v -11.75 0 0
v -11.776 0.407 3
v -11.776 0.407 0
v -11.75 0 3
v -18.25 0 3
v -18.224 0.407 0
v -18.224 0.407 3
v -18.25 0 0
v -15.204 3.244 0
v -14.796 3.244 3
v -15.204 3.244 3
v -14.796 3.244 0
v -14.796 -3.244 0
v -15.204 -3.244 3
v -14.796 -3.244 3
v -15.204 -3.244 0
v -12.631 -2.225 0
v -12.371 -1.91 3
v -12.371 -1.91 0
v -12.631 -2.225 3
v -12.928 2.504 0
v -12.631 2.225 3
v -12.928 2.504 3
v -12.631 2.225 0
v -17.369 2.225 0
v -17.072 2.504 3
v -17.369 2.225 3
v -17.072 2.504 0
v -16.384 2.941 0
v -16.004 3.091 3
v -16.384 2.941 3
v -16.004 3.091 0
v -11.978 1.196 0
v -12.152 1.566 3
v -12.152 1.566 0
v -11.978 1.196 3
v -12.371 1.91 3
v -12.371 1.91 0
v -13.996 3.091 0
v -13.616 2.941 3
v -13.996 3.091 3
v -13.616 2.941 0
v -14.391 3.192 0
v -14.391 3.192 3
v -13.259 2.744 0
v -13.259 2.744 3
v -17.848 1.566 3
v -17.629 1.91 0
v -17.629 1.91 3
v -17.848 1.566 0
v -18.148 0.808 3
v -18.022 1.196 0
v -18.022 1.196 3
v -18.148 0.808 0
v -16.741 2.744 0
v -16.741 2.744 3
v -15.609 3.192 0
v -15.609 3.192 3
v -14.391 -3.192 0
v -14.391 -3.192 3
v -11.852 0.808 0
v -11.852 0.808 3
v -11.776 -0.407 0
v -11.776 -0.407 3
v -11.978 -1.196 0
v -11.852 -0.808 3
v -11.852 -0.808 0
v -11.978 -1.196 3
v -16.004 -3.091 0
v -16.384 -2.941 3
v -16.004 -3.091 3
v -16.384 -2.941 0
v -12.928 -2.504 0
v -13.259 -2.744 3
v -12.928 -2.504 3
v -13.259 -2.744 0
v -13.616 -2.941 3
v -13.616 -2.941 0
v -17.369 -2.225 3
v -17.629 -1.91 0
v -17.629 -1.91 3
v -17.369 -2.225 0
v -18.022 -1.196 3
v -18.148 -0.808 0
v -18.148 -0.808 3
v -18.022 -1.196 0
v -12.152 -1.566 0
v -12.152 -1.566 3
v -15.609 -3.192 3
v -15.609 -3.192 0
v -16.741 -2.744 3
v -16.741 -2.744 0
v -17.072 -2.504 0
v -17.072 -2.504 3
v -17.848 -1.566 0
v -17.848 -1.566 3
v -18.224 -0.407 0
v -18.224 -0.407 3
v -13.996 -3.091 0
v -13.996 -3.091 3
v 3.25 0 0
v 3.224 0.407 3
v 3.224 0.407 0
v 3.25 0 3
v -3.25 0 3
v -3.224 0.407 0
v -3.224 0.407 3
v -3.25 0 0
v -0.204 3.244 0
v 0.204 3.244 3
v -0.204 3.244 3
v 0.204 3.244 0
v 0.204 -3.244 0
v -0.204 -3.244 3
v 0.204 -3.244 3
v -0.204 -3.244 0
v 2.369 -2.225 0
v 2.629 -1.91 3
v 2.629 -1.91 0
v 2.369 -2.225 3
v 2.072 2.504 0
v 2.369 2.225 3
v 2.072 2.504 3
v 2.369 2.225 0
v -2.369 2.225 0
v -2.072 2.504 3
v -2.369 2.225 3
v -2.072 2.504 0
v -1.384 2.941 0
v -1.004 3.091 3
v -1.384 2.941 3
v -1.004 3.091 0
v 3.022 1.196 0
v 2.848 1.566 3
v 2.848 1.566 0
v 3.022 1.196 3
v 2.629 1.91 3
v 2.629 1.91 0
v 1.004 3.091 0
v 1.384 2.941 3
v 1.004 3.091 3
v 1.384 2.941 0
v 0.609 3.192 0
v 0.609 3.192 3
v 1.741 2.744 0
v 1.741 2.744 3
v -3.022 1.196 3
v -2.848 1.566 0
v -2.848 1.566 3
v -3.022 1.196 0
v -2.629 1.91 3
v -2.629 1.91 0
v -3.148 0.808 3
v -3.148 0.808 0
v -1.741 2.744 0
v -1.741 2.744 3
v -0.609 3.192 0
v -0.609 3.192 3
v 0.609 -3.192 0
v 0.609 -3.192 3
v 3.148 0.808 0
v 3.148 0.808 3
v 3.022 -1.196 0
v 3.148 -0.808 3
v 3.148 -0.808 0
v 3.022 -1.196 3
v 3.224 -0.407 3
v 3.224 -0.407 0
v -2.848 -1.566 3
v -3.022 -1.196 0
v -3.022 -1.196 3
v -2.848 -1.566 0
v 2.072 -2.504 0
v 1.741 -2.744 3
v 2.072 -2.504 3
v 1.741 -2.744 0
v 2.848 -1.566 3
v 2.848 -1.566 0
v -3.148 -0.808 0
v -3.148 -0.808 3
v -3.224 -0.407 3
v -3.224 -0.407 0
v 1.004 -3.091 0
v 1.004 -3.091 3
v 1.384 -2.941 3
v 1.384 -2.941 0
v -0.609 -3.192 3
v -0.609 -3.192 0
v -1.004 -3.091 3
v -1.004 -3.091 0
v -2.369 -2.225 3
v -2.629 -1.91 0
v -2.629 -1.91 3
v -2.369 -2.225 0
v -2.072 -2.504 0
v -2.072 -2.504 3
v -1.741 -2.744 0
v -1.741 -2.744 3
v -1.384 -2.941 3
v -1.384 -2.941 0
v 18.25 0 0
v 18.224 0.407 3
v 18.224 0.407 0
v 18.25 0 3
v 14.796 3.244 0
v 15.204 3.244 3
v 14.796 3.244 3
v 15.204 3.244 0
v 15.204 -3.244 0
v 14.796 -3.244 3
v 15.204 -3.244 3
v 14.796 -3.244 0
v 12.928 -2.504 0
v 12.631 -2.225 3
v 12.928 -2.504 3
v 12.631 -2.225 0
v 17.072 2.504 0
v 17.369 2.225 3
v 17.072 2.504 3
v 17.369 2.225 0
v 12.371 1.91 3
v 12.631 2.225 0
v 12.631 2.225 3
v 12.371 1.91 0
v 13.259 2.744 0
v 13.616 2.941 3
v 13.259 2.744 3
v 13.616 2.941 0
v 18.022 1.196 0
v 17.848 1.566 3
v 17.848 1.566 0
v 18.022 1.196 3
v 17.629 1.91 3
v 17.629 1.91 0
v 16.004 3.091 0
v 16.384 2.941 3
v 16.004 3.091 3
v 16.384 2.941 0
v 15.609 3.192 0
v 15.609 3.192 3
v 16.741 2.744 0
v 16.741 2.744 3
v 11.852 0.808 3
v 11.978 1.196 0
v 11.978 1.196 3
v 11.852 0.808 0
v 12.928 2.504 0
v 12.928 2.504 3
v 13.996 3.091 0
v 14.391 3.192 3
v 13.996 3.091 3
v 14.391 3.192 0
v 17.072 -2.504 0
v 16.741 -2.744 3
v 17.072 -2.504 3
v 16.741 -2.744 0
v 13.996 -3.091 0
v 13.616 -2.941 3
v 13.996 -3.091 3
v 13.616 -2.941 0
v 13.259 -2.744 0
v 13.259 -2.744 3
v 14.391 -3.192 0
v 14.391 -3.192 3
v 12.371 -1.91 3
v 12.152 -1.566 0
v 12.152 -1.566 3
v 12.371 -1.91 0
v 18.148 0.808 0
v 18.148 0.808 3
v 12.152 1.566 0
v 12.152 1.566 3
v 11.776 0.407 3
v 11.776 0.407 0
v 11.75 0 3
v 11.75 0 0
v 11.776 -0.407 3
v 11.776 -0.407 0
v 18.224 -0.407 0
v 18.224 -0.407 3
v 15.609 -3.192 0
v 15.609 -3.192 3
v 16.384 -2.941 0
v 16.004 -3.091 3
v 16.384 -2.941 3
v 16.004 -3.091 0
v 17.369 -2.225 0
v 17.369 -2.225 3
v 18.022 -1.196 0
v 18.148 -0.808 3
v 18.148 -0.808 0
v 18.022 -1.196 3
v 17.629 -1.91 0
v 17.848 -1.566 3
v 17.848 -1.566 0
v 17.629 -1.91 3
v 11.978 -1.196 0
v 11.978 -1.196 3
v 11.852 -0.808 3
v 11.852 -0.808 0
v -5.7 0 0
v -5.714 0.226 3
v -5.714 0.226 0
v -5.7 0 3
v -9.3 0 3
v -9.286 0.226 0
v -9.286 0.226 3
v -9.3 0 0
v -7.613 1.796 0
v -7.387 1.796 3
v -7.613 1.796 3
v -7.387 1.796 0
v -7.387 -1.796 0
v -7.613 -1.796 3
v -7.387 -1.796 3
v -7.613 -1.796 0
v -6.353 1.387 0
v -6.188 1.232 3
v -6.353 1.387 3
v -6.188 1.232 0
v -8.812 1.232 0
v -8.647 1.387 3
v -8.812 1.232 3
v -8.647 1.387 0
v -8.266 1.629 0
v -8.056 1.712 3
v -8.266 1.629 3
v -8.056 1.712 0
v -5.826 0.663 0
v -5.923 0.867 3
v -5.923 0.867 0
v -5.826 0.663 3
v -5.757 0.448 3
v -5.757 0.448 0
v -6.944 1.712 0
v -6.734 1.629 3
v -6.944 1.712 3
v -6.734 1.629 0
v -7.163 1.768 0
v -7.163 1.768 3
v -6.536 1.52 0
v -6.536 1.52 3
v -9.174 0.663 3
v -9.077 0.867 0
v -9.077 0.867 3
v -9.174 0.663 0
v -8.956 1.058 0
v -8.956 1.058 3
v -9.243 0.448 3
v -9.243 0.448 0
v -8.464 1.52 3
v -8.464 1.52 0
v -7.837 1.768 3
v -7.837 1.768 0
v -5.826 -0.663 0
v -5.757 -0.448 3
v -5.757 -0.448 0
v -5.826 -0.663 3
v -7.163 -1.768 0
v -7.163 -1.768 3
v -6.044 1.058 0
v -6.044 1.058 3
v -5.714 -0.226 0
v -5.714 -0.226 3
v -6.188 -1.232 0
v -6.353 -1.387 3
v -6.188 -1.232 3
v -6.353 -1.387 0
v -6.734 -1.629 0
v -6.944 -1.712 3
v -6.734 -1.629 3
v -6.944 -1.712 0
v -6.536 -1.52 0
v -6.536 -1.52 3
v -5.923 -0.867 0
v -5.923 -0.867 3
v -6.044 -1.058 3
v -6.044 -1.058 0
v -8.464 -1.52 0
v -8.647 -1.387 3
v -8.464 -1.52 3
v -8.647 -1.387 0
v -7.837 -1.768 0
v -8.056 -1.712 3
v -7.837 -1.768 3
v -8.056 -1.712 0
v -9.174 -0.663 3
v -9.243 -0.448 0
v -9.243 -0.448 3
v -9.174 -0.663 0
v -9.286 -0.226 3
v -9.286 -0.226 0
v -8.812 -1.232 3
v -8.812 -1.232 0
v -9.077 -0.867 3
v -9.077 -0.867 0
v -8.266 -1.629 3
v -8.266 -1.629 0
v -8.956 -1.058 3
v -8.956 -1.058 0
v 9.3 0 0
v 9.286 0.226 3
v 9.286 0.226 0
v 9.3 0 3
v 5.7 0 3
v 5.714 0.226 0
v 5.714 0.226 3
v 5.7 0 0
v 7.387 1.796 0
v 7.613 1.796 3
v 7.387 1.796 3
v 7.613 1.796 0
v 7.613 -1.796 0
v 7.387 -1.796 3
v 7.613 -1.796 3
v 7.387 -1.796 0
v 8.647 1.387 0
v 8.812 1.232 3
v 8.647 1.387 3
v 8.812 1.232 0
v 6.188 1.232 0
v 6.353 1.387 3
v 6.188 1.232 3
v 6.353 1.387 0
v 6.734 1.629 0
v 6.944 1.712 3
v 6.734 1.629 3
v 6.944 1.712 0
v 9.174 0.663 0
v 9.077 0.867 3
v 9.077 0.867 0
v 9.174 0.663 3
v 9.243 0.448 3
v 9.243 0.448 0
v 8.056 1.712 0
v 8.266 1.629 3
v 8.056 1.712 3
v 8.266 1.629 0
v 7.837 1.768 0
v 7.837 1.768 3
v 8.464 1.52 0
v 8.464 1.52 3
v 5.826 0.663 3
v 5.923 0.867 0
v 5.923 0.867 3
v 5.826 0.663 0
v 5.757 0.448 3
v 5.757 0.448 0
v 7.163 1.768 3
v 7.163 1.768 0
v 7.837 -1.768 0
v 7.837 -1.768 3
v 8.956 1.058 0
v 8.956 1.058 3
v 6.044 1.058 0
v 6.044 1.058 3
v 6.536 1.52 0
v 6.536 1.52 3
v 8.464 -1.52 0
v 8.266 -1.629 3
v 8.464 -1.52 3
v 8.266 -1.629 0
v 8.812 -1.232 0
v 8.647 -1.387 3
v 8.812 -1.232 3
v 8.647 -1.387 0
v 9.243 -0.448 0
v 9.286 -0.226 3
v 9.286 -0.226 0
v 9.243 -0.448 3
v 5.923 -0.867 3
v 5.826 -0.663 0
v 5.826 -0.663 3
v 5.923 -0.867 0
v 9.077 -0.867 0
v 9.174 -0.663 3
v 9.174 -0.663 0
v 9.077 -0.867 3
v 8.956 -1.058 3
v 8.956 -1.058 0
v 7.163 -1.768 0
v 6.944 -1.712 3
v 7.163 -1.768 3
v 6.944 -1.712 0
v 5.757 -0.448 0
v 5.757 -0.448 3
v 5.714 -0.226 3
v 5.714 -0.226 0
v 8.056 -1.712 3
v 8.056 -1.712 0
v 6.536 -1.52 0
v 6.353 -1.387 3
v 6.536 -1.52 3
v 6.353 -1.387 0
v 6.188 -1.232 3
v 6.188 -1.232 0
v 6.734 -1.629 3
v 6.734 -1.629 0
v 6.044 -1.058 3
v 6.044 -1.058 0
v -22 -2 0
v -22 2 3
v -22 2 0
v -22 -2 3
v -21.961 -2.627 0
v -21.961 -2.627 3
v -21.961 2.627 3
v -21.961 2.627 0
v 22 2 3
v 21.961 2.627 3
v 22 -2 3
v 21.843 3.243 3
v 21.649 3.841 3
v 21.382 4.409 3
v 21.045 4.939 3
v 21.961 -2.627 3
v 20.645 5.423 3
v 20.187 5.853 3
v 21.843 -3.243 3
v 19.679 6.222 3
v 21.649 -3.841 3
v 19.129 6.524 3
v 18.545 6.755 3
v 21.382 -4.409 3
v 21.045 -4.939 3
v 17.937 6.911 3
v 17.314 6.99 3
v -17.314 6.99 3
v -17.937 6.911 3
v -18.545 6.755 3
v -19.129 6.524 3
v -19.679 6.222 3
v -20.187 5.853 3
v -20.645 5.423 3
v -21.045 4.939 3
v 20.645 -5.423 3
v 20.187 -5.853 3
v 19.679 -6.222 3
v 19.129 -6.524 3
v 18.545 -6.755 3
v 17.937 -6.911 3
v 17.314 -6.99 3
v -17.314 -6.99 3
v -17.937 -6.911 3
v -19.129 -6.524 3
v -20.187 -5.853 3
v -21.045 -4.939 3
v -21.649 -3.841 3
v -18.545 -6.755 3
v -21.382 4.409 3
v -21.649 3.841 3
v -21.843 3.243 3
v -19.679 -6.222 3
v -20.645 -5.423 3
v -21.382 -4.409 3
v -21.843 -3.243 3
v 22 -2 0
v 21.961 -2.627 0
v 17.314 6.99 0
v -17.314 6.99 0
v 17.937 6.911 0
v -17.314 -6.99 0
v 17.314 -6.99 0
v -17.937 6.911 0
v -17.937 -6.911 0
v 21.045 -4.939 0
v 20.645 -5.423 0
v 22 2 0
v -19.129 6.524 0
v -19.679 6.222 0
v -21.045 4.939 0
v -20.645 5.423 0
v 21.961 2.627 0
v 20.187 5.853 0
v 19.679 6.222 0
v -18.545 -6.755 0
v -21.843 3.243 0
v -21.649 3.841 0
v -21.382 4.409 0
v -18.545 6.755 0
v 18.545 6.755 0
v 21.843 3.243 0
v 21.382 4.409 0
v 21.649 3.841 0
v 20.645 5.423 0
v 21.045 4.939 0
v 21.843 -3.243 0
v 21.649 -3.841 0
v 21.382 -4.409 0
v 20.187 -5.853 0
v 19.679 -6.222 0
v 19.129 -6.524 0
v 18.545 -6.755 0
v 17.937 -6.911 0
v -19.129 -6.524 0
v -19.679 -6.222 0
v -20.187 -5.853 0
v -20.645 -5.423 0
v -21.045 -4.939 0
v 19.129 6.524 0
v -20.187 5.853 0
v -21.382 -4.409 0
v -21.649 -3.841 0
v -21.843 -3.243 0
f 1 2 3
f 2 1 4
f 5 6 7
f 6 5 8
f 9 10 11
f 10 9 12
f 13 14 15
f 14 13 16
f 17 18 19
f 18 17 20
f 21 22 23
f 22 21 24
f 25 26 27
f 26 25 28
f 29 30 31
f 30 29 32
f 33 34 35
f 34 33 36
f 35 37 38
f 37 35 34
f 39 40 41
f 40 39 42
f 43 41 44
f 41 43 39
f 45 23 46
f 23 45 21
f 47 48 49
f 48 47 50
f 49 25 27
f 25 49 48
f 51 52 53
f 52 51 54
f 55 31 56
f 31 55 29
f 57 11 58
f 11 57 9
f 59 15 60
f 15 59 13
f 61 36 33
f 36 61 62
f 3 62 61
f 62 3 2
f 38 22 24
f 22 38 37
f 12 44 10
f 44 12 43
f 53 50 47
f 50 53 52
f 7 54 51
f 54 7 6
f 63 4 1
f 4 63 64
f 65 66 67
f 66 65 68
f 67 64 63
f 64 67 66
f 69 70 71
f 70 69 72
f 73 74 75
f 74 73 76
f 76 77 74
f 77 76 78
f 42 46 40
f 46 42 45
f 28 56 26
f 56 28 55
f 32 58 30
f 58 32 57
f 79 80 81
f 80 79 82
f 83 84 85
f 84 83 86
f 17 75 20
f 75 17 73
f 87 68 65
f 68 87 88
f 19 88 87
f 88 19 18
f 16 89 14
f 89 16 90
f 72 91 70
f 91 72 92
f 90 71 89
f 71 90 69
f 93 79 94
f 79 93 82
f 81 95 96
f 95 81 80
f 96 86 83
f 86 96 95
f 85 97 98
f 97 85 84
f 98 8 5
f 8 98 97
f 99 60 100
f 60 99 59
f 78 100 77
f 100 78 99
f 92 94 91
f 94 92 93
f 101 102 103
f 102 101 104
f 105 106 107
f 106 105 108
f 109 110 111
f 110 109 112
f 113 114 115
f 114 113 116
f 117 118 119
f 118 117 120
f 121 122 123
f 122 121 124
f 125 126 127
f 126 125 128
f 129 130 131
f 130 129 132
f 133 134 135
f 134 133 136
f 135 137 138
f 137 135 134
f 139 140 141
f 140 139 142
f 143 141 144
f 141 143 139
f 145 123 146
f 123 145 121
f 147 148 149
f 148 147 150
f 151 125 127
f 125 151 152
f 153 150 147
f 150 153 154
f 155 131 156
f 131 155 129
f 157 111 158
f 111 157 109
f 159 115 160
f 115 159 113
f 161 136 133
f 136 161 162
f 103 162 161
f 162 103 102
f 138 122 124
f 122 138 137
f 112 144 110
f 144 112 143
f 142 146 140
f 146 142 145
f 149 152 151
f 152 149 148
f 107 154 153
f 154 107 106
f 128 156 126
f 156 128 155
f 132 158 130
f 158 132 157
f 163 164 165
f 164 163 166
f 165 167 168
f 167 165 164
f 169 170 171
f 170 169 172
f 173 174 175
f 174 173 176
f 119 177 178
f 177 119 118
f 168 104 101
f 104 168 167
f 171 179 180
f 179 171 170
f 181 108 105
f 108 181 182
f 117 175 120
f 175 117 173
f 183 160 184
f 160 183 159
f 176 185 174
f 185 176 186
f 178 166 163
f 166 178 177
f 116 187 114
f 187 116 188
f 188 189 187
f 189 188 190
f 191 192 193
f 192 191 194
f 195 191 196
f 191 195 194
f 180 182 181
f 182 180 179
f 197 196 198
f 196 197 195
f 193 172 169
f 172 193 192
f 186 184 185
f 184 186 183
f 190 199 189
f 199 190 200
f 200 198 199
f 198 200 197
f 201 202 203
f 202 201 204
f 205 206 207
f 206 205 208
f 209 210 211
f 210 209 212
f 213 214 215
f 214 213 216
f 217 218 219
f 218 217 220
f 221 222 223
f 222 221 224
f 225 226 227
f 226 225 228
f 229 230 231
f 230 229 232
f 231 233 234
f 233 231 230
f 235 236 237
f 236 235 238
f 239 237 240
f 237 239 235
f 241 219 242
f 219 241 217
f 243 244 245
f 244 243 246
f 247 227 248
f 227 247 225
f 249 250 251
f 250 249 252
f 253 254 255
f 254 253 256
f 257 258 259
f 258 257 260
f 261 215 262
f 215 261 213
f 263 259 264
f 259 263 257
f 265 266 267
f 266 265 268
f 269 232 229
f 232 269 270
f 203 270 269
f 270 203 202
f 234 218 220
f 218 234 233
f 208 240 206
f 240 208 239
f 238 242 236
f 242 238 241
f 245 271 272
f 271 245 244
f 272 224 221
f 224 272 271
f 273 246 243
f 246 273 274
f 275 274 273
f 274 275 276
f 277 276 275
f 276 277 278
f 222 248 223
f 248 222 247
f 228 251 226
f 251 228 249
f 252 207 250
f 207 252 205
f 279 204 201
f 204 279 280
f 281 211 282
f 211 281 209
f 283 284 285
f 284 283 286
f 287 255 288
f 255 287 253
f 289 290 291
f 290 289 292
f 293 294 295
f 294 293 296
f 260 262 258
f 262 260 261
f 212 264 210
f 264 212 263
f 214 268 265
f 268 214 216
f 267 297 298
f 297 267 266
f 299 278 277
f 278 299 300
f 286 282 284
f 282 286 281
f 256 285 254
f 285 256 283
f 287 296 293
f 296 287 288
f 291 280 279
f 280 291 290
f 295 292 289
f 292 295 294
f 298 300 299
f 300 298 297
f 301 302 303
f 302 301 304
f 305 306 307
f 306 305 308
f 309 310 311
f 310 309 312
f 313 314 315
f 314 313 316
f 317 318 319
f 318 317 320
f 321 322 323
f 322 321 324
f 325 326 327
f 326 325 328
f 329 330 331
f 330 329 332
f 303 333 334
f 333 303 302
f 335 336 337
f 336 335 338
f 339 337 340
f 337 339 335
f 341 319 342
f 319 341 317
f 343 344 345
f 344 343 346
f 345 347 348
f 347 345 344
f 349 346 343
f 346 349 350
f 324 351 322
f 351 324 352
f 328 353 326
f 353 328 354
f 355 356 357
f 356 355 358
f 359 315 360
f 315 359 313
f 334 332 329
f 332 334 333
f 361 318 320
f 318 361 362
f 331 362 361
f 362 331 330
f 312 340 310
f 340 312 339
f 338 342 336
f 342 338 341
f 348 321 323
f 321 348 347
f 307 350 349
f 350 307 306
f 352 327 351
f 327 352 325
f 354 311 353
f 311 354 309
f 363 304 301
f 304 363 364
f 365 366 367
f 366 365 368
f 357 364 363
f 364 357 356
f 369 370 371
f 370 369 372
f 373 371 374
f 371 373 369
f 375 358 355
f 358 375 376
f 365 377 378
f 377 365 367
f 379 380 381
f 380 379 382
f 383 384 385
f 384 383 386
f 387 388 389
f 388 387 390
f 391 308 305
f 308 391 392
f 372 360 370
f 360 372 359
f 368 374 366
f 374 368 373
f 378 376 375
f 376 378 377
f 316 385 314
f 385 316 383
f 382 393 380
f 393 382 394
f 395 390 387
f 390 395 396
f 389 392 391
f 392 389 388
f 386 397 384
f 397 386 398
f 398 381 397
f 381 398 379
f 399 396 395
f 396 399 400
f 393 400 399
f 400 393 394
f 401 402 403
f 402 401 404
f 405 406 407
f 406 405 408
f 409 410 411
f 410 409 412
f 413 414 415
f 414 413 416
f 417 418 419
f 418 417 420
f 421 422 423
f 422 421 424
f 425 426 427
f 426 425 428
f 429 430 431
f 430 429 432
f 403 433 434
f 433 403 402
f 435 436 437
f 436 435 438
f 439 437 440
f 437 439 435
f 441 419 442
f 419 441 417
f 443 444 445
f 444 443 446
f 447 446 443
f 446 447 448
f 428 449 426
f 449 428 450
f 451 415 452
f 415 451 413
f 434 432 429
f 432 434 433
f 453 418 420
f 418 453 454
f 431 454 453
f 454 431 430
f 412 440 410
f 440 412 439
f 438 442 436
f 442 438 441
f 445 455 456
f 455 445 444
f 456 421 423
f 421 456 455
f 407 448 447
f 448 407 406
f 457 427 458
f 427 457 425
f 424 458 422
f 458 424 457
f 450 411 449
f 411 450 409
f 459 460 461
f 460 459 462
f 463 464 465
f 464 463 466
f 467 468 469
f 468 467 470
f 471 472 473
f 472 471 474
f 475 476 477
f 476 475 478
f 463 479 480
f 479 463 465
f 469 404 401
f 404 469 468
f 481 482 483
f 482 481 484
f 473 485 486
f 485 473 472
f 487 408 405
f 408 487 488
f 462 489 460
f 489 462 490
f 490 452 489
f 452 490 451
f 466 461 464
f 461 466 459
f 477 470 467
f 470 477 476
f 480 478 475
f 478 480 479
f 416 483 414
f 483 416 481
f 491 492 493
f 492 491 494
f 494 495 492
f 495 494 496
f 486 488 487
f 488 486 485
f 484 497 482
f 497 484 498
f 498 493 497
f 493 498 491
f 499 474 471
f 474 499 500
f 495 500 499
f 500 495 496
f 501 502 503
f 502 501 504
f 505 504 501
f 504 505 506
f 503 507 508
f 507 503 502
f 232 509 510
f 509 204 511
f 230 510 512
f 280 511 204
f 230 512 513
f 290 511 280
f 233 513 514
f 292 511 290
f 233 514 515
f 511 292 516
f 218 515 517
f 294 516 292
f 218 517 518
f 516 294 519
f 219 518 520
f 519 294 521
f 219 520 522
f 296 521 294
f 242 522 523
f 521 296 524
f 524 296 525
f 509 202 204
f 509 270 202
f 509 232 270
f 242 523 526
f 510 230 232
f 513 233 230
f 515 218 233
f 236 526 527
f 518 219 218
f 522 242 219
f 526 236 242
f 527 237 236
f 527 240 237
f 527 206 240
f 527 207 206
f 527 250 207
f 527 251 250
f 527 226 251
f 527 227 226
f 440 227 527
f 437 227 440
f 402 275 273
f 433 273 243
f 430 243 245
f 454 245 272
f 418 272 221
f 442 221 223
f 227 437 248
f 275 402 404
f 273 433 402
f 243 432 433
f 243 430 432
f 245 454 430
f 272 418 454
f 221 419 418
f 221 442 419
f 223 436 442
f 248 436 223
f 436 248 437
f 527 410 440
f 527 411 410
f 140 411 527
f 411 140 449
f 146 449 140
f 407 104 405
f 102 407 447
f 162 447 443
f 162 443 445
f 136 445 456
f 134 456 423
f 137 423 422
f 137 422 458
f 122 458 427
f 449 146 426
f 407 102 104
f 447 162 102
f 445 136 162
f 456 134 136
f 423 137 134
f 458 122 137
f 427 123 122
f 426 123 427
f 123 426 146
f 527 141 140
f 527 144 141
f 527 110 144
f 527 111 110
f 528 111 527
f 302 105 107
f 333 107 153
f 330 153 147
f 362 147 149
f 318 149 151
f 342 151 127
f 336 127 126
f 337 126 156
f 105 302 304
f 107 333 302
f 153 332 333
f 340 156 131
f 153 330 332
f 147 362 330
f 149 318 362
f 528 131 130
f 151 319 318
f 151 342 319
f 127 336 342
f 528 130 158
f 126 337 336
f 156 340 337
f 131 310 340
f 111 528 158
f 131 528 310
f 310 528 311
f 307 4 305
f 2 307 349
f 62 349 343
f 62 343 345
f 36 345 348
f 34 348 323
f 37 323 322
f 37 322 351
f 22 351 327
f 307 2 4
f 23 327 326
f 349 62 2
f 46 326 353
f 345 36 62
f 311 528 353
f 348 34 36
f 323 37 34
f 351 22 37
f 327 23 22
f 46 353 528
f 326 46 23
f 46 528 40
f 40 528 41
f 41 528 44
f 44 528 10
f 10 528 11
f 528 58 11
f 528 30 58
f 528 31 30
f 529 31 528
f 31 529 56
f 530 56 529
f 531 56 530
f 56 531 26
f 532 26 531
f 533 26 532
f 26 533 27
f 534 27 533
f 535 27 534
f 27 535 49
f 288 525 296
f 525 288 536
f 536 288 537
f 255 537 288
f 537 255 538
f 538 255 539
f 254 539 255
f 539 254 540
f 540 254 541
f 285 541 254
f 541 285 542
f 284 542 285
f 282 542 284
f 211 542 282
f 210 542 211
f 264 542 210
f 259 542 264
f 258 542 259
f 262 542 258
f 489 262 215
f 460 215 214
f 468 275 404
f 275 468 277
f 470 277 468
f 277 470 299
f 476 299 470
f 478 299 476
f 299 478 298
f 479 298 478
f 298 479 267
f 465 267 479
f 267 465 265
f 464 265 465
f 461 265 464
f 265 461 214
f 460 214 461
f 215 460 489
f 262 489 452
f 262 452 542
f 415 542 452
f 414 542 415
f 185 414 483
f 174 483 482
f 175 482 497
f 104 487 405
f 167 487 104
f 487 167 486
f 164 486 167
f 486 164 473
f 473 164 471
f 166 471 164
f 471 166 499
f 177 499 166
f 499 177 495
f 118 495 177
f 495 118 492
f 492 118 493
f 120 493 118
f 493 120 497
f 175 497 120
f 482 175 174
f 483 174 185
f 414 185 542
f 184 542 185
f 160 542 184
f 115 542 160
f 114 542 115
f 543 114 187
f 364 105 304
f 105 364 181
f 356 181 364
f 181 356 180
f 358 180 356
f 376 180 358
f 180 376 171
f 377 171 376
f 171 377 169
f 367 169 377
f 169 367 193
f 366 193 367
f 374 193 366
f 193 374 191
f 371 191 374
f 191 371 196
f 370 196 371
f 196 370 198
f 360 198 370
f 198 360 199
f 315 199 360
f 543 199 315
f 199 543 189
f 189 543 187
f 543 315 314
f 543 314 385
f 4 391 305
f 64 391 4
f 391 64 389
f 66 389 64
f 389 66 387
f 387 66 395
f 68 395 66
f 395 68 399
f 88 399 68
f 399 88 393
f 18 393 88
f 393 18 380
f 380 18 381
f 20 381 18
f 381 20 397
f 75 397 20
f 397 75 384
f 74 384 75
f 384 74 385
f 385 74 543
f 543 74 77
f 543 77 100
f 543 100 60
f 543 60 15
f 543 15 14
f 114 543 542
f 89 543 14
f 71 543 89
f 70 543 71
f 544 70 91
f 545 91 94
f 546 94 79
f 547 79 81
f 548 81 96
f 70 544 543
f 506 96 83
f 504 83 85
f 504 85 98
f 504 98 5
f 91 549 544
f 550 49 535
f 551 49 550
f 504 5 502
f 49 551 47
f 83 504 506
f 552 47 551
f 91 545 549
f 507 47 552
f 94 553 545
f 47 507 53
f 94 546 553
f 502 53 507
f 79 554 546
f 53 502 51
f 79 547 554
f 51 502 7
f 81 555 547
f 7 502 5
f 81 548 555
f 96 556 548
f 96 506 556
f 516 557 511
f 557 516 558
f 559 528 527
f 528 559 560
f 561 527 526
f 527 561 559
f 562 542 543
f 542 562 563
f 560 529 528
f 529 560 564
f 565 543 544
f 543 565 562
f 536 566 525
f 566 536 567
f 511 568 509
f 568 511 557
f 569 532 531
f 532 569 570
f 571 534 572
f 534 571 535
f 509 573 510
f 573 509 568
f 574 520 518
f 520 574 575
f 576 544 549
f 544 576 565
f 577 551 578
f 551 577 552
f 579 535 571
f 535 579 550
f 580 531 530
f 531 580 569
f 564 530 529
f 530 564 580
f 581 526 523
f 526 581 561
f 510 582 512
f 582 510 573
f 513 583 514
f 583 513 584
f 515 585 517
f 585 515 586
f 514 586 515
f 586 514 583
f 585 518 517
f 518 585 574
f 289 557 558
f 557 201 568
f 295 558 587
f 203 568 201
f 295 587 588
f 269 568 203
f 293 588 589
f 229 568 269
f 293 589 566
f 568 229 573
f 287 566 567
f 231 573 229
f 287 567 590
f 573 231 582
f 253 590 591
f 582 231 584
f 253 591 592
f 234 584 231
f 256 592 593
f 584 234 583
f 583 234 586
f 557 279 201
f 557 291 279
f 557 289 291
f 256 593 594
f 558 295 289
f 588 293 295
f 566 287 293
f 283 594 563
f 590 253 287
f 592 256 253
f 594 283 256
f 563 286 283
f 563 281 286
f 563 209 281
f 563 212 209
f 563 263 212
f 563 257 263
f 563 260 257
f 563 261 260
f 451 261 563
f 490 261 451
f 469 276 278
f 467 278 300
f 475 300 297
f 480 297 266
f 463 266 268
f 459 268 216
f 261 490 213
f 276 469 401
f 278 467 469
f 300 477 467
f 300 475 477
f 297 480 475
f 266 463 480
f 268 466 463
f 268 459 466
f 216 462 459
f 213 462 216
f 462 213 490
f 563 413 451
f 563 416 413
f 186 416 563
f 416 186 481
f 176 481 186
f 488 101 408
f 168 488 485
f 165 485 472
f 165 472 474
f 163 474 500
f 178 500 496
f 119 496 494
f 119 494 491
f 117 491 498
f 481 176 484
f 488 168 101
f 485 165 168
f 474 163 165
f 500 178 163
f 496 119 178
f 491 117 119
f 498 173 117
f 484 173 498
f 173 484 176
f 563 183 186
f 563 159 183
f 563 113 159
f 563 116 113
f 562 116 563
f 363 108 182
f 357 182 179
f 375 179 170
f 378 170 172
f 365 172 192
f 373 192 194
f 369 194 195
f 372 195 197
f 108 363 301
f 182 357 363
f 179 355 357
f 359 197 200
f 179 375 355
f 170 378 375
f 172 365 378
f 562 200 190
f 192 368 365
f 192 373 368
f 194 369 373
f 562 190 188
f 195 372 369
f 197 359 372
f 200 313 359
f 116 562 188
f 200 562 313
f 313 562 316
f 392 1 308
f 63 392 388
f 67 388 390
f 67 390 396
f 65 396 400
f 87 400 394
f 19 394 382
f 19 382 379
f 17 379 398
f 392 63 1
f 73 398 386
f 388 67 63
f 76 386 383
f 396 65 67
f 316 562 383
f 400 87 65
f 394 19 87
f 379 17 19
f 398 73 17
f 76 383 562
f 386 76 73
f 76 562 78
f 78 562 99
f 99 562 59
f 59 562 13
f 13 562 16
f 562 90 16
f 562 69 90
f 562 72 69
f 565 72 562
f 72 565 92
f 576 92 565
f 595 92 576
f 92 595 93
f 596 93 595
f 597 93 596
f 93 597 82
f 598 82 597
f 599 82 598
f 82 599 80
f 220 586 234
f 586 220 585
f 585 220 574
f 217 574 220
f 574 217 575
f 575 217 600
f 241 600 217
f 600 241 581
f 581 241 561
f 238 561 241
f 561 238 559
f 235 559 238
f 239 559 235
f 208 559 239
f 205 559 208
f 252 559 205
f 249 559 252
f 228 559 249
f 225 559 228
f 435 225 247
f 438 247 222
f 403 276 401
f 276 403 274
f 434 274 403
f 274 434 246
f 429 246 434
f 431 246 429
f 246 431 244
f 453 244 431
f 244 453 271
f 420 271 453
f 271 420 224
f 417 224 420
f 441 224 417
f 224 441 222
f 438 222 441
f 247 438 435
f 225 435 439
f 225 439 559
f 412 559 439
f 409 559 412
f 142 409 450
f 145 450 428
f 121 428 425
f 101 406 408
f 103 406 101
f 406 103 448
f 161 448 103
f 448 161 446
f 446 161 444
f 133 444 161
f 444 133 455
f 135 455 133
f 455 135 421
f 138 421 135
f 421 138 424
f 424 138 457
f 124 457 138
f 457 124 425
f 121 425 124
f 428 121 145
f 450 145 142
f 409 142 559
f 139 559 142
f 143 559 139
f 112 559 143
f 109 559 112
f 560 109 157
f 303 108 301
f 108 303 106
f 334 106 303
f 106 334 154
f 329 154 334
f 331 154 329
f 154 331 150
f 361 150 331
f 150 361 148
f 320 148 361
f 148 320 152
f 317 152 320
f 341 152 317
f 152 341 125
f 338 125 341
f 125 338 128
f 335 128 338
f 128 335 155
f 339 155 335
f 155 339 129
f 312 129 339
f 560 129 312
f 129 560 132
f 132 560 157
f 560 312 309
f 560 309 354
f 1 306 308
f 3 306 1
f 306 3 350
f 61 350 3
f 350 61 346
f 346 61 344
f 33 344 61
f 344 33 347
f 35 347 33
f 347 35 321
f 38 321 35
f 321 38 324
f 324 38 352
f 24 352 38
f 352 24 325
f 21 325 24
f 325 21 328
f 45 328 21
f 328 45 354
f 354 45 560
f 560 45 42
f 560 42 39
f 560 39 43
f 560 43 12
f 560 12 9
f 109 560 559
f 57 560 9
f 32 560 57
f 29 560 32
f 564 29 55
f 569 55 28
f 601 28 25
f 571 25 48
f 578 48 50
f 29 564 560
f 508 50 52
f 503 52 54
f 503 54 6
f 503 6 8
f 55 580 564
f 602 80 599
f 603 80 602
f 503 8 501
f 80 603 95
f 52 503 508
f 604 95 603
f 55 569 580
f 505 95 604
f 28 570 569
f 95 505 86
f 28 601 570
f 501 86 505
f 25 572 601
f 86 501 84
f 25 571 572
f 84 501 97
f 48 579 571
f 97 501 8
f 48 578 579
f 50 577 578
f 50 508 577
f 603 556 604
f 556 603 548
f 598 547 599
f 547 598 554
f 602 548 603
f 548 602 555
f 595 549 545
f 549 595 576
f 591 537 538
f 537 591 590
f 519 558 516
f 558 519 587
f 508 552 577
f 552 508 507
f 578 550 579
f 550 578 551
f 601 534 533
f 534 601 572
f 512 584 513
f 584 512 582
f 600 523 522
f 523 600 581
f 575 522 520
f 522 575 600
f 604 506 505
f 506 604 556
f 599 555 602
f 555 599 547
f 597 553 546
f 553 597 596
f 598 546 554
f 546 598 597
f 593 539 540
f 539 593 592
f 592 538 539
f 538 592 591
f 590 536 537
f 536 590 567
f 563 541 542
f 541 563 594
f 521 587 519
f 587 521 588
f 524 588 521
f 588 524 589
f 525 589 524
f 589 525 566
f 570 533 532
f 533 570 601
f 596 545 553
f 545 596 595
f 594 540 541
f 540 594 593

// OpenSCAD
$fn = 50;


difference() {
	union() {
		translate(v = [0, 0, 0]) {
			rotate(a = [0, 0, 0]) {
				hull() {
					translate(v = [-17.0000000000, 2.0000000000, 0]) {
						rotate(a = [0, 0, 0]) {
							translate(v = [0, 0, 0]) {
								rotate(a = [0, 0, 0]) {
									cylinder(h = 3, r = 5);
								}
							}
						}
					}
					translate(v = [17.0000000000, 2.0000000000, 0]) {
						rotate(a = [0, 0, 0]) {
							translate(v = [0, 0, 0]) {
								rotate(a = [0, 0, 0]) {
									cylinder(h = 3, r = 5);
								}
							}
						}
					}
					translate(v = [-17.0000000000, -2.0000000000, 0]) {
						rotate(a = [0, 0, 0]) {
							translate(v = [0, 0, 0]) {
								rotate(a = [0, 0, 0]) {
									cylinder(h = 3, r = 5);
								}
							}
						}
					}
					translate(v = [17.0000000000, -2.0000000000, 0]) {
						rotate(a = [0, 0, 0]) {
							translate(v = [0, 0, 0]) {
								rotate(a = [0, 0, 0]) {
									cylinder(h = 3, r = 5);
								}
							}
						}
					}
				}
			}
		}
	}
	union() {
		translate(v = [-15.0000000000, 0.0000000000, 0]) {
			rotate(a = [0, 0, 0]) {
				translate(v = [0, 0, -50]) {
					rotate(a = [0, 0, 0]) {
						cylinder(h = 100, r = 3.2500000000);
					}
				}
			}
		}
		translate(v = [0.0000000000, 0.0000000000, 0]) {
			rotate(a = [0, 0, 0]) {
				translate(v = [0, 0, -50]) {
					rotate(a = [0, 0, 0]) {
						cylinder(h = 100, r = 3.2500000000);
					}
				}
			}
		}
		translate(v = [15.0000000000, 0.0000000000, 0]) {
			rotate(a = [0, 0, 0]) {
				translate(v = [0, 0, -50]) {
					rotate(a = [0, 0, 0]) {
						cylinder(h = 100, r = 3.2500000000);
					}
				}
			}
		}
		translate(v = [-15.0000000000, 0.0000000000, 0]) {
			rotate(a = [0, 0, 0]) {
				translate(v = [0, 0, -50]) {
					rotate(a = [0, 0, 0]) {
						cylinder(h = 100, r = 1.8000000000);
					}
				}
			}
		}
		translate(v = [-7.5000000000, 0.0000000000, 0]) {
			rotate(a = [0, 0, 0]) {
				translate(v = [0, 0, -50]) {
					rotate(a = [0, 0, 0]) {
						cylinder(h = 100, r = 1.8000000000);
					}
				}
			}
		}
		translate(v = [0.0000000000, 0.0000000000, 0]) {
			rotate(a = [0, 0, 0]) {
				translate(v = [0, 0, -50]) {
					rotate(a = [0, 0, 0]) {
						cylinder(h = 100, r = 1.8000000000);
					}
				}
			}
		}
		translate(v = [7.5000000000, 0.0000000000, 0]) {
			rotate(a = [0, 0, 0]) {
				translate(v = [0, 0, -50]) {
					rotate(a = [0, 0, 0]) {
						cylinder(h = 100, r = 1.8000000000);
					}
				}
			}
		}
		translate(v = [15.0000000000, 0.0000000000, 0]) {
			rotate(a = [0, 0, 0]) {
				translate(v = [0, 0, -50]) {
					rotate(a = [0, 0, 0]) {
						cylinder(h = 100, r = 1.8000000000);
					}
				}
			}
		}
	}
}
